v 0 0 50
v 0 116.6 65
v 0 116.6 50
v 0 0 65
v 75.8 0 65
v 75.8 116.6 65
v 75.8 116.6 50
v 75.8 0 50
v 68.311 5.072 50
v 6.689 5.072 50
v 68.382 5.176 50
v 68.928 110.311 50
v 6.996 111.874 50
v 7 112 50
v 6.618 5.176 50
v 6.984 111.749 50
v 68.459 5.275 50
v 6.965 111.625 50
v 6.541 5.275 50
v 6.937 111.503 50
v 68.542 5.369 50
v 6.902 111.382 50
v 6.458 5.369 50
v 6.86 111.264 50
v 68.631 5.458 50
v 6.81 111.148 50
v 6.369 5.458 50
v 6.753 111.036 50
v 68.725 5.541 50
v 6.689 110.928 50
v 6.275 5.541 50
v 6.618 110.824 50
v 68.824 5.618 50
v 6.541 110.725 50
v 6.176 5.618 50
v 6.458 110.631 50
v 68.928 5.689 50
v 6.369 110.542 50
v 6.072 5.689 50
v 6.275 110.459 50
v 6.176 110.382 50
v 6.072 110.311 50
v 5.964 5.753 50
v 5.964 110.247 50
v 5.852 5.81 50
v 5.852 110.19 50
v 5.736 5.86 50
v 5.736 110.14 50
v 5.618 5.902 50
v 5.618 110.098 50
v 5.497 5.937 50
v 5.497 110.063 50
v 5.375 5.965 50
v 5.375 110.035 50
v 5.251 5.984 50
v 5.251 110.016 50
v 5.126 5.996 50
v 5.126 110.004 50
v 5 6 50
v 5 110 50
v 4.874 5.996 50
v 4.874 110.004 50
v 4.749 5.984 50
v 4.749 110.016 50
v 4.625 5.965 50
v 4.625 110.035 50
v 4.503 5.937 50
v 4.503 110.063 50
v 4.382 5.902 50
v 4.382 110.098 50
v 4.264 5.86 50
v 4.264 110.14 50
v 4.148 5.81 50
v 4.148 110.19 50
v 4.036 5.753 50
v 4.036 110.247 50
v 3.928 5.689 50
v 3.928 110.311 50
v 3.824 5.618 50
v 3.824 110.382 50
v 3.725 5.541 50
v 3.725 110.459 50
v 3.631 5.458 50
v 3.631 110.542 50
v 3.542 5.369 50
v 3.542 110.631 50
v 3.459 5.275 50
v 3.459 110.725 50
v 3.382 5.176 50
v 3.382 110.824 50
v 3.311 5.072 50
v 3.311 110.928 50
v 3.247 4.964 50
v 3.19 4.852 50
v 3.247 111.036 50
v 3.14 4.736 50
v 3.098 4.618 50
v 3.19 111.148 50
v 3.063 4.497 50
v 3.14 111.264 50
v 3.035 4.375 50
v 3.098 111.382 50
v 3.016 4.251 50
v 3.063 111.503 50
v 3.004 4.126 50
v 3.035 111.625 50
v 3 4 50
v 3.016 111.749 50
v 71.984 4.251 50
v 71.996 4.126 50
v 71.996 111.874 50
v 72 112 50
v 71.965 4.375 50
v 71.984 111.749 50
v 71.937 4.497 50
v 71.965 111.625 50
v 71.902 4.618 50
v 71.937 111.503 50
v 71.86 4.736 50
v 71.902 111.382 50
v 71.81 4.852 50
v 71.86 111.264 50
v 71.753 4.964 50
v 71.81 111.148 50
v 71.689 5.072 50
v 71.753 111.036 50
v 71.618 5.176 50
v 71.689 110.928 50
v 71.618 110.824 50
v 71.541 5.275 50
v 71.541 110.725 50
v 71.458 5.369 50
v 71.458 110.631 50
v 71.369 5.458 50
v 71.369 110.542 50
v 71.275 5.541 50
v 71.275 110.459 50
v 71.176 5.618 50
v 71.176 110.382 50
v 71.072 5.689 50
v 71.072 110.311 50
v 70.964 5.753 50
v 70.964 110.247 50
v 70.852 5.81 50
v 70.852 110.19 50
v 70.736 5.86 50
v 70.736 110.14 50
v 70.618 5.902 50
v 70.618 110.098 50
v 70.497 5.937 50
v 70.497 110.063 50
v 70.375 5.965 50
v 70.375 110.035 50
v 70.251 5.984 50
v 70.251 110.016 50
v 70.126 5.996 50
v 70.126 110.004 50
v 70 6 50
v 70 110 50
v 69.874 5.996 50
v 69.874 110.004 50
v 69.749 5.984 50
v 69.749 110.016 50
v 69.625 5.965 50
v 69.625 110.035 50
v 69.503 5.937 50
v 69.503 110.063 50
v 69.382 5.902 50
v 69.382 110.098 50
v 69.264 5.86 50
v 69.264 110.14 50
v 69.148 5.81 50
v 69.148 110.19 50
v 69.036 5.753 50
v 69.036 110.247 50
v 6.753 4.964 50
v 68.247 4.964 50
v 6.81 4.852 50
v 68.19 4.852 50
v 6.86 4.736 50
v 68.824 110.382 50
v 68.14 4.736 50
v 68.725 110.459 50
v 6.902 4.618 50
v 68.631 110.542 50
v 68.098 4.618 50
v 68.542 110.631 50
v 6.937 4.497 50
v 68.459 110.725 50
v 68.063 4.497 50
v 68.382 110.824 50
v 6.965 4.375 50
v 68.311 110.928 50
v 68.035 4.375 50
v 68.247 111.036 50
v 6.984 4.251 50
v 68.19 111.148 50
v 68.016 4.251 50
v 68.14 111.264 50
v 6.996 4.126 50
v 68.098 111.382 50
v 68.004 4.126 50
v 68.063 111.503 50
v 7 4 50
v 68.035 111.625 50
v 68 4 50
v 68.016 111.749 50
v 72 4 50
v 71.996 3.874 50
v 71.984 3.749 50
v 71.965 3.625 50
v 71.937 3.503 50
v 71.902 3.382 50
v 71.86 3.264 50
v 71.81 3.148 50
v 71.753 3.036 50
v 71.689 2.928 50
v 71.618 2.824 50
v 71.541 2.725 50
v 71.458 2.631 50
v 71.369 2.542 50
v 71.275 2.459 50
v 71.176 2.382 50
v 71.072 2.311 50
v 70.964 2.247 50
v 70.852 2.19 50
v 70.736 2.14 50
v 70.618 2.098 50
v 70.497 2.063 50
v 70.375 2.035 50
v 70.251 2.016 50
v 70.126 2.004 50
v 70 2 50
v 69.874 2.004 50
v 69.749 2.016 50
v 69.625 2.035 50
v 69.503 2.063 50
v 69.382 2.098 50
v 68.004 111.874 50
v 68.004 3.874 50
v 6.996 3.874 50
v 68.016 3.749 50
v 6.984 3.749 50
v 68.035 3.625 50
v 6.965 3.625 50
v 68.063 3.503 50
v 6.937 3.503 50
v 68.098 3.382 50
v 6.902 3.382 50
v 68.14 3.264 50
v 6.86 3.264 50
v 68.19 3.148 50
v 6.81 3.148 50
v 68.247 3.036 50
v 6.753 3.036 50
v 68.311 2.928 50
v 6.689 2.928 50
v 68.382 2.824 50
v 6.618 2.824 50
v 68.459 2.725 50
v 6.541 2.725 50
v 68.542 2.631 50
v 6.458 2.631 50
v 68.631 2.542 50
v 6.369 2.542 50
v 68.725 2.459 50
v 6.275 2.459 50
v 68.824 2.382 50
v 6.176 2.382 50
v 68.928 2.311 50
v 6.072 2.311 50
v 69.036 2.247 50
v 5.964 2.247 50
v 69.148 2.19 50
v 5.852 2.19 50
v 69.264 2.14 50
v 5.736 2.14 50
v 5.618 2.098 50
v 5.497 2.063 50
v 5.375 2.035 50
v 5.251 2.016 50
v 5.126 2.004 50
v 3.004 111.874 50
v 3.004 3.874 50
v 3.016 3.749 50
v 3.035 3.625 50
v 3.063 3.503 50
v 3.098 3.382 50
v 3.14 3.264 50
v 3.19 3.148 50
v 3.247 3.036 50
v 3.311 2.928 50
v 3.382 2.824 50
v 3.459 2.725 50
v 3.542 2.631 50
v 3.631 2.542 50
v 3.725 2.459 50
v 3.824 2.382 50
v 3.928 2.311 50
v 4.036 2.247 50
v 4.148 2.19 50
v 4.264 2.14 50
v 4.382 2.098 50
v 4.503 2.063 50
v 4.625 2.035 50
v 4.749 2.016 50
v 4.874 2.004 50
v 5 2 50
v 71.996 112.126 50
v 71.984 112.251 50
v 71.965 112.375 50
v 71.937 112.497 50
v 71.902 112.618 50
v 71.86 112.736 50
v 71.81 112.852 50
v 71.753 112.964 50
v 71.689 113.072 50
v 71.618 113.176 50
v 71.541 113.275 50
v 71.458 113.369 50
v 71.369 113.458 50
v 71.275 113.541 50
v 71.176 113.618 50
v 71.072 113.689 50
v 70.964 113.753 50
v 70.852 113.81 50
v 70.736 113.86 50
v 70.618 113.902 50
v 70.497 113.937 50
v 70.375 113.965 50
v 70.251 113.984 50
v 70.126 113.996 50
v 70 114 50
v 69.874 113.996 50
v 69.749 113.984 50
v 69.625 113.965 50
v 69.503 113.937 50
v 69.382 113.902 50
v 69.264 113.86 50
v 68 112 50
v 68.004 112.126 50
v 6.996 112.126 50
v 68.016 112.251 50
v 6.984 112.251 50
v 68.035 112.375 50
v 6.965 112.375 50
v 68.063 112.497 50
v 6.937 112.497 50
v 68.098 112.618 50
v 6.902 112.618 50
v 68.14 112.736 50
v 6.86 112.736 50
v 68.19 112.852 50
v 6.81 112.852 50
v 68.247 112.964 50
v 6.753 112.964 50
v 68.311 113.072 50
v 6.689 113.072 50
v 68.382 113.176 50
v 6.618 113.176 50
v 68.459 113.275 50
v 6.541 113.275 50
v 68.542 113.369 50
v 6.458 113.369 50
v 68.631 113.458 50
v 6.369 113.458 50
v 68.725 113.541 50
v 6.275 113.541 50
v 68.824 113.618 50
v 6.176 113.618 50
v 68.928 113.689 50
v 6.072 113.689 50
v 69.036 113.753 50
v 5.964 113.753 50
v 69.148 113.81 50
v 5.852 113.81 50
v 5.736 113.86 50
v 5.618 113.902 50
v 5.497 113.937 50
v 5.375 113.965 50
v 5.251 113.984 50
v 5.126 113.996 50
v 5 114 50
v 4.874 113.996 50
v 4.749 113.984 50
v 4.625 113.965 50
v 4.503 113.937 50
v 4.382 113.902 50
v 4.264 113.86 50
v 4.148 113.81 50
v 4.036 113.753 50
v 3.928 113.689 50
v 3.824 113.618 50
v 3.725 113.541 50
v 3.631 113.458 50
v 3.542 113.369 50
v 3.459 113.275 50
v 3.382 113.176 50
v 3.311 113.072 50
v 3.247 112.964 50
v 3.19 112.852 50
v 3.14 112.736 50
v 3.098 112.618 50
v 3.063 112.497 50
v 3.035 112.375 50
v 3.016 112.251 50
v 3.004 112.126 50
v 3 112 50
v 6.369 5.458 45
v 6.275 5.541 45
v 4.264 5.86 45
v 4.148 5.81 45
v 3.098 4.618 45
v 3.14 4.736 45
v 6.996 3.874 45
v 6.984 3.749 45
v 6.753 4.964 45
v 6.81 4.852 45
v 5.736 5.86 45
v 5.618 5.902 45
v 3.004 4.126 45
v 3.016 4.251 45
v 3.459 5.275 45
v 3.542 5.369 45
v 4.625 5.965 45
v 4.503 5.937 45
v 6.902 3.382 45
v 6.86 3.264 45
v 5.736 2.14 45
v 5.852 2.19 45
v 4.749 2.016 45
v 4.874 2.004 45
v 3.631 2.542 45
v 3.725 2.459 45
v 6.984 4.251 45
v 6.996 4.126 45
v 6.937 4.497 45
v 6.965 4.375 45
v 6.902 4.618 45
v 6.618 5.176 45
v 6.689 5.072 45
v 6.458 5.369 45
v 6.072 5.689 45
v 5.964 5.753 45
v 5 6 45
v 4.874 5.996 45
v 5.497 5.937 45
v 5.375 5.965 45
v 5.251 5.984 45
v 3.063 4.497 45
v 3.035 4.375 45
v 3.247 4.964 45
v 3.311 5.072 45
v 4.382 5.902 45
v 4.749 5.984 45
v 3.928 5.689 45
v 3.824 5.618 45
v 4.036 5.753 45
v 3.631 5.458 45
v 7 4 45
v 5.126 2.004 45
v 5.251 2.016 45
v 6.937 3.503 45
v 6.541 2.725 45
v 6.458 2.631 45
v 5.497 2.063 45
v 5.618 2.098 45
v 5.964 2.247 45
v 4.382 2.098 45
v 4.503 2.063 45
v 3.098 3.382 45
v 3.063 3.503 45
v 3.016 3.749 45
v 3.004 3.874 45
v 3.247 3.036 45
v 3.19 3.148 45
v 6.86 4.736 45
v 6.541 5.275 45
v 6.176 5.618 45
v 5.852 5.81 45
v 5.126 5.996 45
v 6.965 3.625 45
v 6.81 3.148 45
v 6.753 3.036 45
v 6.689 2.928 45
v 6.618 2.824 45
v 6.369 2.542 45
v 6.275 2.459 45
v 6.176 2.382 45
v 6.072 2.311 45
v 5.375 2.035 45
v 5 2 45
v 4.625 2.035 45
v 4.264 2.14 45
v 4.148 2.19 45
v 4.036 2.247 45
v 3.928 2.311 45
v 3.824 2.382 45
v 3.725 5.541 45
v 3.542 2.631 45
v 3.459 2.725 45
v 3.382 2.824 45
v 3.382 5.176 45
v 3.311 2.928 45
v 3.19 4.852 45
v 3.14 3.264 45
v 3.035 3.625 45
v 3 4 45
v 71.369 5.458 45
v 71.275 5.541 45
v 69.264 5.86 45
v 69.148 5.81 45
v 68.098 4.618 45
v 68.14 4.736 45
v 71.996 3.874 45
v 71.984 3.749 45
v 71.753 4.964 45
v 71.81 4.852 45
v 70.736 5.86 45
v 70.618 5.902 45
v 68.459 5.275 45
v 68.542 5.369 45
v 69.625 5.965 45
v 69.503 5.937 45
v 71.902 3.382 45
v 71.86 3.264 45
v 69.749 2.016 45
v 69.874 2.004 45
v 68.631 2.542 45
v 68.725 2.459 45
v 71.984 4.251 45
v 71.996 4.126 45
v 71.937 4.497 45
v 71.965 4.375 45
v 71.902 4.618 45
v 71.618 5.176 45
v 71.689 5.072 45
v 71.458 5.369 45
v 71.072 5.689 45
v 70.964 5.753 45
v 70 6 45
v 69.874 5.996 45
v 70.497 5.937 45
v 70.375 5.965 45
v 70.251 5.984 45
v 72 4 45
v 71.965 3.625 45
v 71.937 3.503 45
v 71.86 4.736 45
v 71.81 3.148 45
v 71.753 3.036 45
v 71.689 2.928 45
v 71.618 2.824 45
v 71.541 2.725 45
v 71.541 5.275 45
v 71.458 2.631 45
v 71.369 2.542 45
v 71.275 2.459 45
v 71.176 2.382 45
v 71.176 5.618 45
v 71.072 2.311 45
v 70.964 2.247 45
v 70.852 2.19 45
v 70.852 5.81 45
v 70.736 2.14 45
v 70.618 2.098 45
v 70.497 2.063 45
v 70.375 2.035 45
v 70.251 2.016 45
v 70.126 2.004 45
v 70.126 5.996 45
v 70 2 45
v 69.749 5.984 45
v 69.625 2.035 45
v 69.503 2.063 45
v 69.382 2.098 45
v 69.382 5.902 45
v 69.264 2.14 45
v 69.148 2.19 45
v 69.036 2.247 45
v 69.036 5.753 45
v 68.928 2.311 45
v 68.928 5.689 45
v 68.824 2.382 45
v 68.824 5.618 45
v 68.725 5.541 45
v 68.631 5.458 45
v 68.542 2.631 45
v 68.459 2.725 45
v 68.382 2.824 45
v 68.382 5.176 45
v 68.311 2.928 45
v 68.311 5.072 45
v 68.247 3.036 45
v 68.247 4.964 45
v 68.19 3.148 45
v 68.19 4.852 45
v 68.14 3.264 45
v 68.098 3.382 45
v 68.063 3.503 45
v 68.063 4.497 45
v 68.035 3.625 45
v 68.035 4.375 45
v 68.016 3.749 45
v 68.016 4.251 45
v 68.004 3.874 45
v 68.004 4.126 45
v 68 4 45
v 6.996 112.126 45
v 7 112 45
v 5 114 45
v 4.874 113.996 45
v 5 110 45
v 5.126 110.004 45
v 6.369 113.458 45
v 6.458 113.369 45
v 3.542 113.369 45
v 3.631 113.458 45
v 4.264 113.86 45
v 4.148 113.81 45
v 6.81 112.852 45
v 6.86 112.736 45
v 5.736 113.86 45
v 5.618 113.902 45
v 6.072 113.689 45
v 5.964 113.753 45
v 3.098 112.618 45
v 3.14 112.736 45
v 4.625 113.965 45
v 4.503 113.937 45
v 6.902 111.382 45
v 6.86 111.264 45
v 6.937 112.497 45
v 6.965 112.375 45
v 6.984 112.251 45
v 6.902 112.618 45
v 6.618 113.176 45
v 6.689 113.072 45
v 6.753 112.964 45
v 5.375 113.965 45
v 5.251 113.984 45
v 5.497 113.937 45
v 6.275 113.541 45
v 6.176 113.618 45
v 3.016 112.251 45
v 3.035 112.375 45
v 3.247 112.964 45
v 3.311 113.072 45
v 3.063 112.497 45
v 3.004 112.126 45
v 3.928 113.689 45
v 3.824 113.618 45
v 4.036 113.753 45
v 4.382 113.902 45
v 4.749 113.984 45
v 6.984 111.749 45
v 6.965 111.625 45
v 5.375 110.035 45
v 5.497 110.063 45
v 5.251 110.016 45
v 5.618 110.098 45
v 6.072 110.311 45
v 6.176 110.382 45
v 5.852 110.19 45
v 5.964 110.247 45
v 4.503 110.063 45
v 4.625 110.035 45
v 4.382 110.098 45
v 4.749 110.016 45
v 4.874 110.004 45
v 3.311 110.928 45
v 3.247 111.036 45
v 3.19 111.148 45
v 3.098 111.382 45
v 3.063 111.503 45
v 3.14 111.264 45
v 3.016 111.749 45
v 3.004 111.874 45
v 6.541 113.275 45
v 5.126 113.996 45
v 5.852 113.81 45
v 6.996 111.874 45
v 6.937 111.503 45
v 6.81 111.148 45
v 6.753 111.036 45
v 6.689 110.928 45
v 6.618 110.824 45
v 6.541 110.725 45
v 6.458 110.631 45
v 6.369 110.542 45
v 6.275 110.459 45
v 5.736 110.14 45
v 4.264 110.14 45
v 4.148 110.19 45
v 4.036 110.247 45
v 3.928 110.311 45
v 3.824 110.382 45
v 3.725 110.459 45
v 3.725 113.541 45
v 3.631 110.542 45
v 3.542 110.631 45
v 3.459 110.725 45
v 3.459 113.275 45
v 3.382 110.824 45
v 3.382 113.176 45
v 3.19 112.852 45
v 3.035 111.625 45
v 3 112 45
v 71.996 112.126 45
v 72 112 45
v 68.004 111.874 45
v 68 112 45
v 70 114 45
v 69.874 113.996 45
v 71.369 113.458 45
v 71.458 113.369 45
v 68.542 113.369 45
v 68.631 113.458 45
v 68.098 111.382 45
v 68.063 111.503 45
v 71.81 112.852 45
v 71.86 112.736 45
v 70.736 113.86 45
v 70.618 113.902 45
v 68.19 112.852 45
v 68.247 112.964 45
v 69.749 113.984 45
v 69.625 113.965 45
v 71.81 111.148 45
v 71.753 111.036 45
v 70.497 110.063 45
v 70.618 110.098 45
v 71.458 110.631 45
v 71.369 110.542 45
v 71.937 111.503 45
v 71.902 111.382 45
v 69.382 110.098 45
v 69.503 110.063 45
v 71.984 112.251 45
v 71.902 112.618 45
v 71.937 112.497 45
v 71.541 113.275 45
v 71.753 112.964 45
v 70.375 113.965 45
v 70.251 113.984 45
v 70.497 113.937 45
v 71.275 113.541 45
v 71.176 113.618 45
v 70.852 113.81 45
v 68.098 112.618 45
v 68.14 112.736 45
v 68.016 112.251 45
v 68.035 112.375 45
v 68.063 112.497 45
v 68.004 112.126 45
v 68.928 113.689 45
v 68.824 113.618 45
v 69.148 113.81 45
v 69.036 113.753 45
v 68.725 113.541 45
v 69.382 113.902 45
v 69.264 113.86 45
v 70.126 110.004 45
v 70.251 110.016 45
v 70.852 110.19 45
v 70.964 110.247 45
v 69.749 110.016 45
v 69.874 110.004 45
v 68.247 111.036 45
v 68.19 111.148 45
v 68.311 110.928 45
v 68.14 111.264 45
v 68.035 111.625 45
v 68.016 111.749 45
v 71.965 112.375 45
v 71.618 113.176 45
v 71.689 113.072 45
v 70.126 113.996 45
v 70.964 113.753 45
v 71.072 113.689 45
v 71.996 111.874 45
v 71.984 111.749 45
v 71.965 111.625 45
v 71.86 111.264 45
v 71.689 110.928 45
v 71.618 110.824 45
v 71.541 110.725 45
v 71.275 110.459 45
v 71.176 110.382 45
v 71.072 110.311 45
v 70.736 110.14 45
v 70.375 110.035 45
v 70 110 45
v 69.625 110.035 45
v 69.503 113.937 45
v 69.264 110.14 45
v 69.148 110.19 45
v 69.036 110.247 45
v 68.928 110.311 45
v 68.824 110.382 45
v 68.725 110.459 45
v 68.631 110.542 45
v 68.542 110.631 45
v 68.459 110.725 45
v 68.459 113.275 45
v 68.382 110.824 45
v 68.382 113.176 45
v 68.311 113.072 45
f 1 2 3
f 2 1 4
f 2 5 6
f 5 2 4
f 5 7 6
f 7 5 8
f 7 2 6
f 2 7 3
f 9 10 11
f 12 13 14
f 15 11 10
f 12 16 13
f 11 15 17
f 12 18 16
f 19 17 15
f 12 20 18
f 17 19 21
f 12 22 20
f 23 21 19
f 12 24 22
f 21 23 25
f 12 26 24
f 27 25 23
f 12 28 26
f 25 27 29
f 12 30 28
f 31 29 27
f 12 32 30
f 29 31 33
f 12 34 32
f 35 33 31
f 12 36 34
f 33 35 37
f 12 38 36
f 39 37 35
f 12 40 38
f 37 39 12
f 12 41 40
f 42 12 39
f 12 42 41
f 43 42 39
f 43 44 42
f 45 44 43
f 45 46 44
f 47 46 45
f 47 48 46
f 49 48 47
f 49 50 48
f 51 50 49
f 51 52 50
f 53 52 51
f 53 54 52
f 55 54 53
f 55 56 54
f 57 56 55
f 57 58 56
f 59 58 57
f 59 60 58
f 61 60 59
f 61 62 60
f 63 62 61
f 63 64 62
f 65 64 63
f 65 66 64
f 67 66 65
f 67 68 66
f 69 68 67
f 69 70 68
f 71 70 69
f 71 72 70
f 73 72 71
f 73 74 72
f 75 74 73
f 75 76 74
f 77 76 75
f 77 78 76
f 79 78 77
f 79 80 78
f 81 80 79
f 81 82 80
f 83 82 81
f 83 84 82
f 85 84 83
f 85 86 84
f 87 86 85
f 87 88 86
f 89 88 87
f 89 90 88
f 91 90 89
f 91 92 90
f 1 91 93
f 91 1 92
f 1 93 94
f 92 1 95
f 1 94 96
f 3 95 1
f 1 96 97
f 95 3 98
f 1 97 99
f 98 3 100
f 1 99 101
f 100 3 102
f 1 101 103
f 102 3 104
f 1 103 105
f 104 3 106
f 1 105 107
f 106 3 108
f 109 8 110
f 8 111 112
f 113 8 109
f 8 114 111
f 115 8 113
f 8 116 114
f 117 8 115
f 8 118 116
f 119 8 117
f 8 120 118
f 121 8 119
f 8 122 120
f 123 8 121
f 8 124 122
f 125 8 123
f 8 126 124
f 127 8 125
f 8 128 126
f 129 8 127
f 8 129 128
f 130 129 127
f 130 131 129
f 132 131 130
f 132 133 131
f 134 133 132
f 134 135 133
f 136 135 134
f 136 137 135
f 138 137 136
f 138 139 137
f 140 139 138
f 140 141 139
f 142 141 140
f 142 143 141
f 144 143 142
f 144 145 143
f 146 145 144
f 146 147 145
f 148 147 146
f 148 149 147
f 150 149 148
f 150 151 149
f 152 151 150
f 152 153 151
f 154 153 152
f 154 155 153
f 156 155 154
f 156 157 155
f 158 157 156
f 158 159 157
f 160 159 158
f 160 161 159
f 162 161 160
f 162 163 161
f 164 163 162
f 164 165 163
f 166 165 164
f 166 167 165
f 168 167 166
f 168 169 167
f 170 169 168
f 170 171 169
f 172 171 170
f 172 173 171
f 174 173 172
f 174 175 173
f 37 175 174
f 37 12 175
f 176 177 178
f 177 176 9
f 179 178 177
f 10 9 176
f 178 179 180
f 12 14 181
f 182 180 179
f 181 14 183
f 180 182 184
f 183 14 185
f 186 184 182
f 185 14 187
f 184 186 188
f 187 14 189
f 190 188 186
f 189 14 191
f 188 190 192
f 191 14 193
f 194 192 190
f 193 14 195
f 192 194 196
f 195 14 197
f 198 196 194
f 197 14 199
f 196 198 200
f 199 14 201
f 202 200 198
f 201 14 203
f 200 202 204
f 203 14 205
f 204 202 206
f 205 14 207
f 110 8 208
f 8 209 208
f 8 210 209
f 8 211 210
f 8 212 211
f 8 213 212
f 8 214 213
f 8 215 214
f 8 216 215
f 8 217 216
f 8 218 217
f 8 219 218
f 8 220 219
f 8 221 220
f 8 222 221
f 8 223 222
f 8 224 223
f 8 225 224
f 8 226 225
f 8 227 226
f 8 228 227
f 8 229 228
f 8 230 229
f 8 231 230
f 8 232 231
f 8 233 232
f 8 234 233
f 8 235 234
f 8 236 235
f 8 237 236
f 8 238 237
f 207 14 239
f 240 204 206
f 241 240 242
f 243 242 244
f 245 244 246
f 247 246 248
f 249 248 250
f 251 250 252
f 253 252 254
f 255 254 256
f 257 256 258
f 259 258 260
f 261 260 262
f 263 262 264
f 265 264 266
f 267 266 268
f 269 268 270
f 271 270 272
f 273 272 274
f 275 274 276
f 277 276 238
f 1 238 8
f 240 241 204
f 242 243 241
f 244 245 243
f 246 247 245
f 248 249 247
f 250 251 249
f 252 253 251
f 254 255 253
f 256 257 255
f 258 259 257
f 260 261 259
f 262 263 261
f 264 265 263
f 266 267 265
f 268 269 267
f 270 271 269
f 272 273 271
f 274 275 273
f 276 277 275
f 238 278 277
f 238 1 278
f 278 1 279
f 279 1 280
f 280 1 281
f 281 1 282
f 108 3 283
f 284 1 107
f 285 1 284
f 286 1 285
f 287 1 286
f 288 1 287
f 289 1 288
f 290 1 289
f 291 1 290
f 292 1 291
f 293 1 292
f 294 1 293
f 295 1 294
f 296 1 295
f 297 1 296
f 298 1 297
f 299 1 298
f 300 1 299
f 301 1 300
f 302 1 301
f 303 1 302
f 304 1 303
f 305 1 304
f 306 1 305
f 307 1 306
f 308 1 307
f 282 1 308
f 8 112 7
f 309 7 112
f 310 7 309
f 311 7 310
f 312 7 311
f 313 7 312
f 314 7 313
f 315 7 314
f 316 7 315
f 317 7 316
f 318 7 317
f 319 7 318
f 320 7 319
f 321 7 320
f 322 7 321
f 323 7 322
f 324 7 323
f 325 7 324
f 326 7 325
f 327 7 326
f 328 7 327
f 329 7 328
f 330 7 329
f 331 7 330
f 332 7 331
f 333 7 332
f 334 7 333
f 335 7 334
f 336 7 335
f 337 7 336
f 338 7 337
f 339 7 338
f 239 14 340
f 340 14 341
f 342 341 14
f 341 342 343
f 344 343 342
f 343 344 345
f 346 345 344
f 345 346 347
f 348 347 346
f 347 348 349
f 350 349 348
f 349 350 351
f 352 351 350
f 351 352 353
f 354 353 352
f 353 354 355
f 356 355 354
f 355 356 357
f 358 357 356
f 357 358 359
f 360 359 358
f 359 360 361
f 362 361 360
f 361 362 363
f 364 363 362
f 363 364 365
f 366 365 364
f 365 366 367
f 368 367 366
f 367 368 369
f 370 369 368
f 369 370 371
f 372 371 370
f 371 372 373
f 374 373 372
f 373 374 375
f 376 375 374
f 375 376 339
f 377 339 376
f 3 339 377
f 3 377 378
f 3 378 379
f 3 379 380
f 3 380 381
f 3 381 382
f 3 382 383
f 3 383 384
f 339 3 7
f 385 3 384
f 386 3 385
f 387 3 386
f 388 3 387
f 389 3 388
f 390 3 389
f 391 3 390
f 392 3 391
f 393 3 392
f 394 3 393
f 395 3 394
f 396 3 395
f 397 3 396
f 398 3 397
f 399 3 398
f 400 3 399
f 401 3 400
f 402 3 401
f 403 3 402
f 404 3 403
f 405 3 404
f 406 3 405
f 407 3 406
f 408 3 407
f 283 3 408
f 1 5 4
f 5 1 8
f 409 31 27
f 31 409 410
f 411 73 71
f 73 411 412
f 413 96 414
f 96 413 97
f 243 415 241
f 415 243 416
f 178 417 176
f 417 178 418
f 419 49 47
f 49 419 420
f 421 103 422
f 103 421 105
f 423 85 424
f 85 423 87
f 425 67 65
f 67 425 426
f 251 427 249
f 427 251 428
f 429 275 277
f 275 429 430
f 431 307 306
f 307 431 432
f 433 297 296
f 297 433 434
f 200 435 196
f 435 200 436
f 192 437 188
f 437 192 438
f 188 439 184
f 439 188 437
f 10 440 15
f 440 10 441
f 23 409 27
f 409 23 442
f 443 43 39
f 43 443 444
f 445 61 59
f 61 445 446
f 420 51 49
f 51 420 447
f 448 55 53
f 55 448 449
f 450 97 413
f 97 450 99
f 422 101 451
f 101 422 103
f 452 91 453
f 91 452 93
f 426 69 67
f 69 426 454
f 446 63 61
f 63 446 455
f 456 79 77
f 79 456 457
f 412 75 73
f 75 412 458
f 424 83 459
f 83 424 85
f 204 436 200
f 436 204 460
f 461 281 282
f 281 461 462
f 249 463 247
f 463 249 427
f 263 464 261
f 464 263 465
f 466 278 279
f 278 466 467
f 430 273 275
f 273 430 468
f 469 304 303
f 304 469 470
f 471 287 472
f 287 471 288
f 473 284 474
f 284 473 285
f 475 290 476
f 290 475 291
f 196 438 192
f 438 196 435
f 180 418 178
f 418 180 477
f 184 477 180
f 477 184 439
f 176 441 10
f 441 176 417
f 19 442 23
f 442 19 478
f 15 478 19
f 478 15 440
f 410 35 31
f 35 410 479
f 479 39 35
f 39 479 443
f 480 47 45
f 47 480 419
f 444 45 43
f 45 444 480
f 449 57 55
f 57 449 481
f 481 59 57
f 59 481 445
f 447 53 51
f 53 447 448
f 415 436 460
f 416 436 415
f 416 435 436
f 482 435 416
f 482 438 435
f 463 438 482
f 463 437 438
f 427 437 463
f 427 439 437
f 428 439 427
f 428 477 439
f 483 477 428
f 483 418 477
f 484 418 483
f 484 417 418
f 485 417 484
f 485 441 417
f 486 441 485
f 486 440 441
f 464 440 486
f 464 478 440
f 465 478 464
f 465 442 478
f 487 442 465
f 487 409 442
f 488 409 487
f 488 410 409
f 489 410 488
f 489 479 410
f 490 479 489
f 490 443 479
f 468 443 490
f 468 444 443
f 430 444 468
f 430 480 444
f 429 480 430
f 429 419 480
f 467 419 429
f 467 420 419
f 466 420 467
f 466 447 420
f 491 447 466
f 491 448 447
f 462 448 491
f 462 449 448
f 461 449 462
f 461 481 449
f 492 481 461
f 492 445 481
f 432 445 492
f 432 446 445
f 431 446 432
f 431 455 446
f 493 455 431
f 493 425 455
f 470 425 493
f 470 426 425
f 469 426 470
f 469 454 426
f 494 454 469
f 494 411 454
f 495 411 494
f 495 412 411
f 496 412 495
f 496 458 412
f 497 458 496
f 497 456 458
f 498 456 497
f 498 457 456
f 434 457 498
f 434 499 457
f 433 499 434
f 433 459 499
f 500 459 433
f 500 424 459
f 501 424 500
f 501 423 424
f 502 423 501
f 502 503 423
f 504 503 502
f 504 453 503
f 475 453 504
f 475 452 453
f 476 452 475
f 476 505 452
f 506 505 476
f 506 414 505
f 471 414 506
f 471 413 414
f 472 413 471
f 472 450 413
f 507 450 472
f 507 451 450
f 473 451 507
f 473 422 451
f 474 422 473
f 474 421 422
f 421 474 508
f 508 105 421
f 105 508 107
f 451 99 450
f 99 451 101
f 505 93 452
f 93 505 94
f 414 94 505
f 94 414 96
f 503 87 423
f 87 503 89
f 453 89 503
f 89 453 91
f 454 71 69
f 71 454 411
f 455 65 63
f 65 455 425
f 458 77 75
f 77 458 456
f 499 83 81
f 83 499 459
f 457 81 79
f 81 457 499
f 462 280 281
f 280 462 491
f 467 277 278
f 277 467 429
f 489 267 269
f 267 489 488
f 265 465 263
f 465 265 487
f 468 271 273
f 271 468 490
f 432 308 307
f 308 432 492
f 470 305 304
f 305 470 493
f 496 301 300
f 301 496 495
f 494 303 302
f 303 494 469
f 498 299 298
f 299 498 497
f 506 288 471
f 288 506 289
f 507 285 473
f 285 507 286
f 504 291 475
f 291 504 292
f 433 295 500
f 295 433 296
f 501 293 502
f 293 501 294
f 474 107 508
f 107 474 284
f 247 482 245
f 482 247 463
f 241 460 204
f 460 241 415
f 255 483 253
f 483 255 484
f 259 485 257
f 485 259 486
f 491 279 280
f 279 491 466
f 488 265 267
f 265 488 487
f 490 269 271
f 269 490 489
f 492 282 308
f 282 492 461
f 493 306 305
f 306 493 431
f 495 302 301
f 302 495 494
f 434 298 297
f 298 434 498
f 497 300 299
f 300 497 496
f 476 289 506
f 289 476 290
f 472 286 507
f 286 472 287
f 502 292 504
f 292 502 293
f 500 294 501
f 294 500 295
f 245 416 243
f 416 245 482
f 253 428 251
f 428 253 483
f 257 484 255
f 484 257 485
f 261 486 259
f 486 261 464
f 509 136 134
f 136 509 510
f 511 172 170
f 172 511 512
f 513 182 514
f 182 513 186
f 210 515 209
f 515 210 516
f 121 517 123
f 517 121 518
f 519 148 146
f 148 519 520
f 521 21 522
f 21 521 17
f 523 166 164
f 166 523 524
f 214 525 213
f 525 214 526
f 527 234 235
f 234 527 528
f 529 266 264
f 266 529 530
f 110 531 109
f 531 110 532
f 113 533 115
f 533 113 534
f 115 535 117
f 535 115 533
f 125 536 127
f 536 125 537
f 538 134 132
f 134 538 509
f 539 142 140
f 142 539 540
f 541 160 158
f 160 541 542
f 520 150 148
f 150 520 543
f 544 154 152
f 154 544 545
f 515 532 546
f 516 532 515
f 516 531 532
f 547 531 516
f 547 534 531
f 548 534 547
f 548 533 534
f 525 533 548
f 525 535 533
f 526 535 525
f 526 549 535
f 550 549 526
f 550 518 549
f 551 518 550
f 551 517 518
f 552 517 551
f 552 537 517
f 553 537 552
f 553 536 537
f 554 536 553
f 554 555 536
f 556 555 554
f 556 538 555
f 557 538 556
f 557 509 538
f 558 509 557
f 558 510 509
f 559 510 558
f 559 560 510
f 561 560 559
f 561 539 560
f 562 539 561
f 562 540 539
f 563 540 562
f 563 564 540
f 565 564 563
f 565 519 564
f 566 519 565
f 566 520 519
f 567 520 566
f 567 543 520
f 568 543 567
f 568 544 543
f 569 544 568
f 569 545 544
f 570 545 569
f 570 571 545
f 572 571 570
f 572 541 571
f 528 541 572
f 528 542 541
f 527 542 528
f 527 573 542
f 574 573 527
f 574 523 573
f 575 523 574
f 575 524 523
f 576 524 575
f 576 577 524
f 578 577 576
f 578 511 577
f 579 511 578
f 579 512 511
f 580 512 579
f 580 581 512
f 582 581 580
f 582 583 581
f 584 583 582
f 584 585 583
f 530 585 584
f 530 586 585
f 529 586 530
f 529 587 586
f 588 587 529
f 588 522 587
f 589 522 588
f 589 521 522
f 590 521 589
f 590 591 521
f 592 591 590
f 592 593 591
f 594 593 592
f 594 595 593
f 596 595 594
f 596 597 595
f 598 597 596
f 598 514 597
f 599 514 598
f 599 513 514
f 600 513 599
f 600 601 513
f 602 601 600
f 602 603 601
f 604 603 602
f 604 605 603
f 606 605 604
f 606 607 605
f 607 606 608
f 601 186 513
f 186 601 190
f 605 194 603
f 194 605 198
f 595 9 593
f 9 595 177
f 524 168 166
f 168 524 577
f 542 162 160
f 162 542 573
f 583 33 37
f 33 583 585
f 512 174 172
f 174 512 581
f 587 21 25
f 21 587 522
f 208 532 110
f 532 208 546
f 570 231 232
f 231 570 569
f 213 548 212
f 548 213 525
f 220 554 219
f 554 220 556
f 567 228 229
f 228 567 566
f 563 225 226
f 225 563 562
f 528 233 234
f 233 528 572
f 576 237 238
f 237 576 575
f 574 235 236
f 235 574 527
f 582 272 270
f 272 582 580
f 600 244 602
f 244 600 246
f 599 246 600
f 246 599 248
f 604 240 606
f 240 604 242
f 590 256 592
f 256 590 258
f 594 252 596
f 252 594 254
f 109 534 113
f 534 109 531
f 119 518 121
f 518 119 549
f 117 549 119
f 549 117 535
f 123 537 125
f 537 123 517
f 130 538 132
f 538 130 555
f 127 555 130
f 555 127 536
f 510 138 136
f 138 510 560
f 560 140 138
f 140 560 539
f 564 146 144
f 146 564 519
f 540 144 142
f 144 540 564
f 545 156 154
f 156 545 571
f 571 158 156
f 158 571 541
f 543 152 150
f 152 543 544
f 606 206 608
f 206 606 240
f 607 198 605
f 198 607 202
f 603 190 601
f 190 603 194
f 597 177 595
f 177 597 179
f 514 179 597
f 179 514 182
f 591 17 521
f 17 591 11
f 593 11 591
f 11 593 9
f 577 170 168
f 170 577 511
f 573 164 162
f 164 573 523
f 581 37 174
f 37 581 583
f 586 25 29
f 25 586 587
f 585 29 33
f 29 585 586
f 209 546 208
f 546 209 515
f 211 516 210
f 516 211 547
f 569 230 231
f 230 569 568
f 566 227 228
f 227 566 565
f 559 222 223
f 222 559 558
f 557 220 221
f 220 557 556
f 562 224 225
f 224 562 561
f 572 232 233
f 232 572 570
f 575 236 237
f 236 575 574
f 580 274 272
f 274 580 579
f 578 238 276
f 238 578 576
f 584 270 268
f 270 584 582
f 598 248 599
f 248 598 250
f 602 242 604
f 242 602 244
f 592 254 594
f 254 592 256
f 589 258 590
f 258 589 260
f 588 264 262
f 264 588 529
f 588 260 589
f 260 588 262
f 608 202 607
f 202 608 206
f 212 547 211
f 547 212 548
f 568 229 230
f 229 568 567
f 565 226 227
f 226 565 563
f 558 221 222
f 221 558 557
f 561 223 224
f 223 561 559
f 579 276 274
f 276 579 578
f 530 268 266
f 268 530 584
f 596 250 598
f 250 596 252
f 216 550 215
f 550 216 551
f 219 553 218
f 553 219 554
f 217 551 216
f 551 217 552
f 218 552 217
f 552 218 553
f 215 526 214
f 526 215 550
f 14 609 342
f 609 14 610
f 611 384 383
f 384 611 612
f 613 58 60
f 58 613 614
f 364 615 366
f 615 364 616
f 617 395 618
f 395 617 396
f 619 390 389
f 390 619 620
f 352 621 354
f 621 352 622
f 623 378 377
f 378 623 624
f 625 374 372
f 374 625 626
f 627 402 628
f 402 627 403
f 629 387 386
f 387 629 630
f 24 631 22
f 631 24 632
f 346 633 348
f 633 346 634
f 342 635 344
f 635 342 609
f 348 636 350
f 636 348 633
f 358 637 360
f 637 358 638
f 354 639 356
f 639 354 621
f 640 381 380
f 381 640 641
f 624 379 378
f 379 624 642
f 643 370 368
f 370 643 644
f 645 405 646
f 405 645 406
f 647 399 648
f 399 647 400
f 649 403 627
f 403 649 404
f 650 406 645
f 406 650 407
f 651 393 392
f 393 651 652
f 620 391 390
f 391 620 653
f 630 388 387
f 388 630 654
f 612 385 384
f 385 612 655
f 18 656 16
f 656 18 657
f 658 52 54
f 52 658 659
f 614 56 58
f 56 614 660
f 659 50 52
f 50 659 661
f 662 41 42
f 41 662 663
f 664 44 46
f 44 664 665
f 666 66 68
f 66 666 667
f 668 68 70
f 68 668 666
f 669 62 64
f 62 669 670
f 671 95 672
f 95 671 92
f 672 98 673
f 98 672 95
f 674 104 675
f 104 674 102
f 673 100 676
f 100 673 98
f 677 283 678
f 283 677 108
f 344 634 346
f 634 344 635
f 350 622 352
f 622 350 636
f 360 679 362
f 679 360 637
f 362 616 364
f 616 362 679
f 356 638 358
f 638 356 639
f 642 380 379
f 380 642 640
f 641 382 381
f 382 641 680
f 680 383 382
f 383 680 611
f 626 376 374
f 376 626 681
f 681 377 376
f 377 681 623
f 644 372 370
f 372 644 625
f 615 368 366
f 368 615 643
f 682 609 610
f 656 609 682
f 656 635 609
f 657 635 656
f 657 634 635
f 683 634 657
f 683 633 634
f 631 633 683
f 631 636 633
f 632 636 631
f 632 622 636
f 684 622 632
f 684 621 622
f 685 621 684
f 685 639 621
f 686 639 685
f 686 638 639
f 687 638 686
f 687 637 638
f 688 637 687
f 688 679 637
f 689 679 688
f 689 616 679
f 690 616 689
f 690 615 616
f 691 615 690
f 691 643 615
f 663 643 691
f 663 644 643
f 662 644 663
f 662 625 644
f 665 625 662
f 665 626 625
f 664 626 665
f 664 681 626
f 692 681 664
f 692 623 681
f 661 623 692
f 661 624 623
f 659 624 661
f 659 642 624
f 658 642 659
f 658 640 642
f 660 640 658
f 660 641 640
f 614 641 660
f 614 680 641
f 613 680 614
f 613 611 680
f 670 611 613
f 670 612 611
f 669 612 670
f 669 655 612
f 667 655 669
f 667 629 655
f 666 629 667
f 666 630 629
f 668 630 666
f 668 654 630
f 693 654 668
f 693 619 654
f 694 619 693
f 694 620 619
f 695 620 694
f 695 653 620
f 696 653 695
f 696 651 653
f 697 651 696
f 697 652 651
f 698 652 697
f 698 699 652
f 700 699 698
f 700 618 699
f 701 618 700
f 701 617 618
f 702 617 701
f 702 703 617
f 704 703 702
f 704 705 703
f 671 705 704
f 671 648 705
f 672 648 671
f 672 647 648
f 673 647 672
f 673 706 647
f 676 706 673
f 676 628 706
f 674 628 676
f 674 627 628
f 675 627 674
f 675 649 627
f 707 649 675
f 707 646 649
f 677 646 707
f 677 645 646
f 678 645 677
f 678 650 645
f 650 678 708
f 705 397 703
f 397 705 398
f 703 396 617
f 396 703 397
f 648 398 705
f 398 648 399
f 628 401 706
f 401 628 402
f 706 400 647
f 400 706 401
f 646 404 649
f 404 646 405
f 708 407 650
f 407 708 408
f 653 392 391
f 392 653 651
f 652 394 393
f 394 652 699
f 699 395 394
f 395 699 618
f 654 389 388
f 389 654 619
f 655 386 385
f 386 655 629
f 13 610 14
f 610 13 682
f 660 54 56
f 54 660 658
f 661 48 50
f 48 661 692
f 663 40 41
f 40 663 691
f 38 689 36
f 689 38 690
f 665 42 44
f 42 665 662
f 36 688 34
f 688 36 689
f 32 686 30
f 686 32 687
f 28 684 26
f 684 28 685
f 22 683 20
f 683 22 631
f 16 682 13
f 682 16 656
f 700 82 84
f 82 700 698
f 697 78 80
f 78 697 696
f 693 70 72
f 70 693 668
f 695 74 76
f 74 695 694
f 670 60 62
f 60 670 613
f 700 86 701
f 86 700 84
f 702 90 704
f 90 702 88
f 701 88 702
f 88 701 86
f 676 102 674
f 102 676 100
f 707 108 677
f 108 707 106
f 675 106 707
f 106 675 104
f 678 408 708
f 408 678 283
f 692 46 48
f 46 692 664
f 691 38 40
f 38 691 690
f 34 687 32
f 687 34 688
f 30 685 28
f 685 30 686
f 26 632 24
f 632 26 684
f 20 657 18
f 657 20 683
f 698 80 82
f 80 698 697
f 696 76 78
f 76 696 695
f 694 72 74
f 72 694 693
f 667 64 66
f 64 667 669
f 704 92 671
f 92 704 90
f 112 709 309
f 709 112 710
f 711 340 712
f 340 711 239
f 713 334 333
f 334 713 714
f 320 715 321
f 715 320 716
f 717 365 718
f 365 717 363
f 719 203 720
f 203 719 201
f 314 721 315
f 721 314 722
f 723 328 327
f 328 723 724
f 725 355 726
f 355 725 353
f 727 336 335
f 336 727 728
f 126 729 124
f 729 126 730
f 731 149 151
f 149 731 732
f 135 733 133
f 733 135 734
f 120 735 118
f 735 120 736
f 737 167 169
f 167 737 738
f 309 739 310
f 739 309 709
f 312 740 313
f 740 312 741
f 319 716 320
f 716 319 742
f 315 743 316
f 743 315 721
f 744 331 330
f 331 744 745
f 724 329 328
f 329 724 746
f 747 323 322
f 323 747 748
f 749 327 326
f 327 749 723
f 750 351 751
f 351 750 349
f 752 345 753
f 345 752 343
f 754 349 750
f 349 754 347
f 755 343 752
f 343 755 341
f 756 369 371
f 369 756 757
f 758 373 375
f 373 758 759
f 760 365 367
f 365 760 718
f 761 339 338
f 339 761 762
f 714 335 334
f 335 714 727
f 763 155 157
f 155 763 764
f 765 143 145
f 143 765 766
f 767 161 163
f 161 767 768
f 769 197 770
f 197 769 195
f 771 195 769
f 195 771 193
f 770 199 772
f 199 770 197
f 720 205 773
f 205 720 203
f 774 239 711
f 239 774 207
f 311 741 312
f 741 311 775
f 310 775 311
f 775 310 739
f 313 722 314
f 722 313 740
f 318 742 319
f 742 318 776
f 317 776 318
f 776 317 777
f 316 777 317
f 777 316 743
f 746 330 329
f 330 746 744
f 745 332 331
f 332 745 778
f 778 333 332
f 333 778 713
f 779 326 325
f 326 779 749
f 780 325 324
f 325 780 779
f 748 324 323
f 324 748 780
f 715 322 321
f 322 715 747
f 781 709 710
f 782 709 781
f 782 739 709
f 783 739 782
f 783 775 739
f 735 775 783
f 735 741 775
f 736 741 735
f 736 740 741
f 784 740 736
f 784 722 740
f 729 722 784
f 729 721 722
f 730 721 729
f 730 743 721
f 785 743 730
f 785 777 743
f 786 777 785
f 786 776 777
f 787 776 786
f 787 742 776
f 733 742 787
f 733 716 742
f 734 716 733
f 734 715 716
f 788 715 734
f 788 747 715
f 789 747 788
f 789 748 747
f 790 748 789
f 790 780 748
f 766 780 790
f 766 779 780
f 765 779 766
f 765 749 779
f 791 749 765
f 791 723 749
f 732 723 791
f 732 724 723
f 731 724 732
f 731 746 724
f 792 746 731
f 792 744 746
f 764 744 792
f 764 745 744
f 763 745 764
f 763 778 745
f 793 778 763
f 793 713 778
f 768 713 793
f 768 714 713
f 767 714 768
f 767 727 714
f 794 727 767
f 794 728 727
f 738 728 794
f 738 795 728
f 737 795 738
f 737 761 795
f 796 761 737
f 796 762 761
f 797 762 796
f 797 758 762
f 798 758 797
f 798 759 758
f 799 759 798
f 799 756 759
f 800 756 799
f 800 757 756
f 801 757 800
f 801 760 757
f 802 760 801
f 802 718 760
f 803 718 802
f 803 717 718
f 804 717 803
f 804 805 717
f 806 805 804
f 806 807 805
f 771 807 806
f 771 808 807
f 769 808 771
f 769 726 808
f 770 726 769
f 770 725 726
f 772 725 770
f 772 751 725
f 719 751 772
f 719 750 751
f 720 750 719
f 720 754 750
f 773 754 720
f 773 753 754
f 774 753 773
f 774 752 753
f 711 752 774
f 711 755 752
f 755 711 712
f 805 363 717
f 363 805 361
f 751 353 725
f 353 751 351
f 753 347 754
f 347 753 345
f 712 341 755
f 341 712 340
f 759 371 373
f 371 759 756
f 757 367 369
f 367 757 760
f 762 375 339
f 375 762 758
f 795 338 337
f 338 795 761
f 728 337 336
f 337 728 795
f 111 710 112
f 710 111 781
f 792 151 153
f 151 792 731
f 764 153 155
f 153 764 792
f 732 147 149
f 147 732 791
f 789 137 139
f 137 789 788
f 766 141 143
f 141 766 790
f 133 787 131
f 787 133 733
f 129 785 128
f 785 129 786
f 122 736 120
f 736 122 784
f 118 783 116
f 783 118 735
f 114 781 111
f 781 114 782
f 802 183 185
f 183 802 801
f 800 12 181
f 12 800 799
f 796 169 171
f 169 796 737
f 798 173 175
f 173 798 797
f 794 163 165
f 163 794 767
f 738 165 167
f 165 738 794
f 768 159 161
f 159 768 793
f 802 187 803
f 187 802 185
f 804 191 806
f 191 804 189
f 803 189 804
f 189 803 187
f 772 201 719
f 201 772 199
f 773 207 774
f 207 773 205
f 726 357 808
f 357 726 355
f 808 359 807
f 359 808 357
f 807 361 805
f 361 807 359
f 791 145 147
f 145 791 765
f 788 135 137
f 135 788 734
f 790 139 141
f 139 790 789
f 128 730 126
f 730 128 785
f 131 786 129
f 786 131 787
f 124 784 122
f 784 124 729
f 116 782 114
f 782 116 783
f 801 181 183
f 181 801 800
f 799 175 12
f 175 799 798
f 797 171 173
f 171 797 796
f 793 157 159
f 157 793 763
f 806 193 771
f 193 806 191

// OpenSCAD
$fn = 100;

color("black") translate([0,0,50]) cube([75.8,116.6,15]);
translate([5,4,45]) cylinder(r=2,h=15);
translate([70,4,45]) cylinder(r=2,h=15);
translate([5,112,45]) cylinder(r=2,h=15);
translate([70,112,45]) cylinder(r=2,h=15);
